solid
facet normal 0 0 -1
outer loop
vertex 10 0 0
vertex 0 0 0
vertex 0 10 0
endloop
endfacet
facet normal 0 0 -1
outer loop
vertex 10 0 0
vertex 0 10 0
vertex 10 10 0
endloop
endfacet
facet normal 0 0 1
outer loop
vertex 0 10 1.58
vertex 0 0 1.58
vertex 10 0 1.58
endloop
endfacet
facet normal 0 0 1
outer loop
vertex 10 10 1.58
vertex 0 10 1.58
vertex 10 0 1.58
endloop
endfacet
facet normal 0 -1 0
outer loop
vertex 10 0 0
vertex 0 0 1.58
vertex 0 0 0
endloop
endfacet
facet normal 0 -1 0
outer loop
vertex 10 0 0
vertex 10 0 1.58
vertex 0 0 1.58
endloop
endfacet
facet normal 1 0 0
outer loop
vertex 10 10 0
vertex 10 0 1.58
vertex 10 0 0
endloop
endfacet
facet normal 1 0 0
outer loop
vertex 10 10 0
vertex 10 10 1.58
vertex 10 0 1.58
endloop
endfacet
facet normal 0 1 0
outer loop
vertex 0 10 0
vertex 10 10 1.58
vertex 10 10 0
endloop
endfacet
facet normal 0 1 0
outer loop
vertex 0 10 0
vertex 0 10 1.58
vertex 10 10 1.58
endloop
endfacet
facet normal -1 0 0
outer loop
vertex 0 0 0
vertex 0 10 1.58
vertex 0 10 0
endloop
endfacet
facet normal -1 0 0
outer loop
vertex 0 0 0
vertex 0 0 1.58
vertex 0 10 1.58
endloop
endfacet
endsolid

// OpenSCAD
// Generated by SolidPython 1.0.0 on 2020-07-15 15:52:40


linear_extrude(center = false, height = 1.5800000000) {
	square(size = 10);
}
/***********************************************
*********      SolidPython code:      **********
************************************************
 
from solid import *
from solid.utils import *
# pip install git+https://github.com/SolidCode/SolidPython.git
import os

OPENSCAD_BINARY = "~/Programs/OpenSCAD-2019.05-x86_64.AppImage"

FRAME_WIDTH = 50
FRAME_HEIGHT = 1.58

CUVETTE_LENGTH = 5
WINDOW_LENGTH = 10

layer_0 = square(10)

frame = linear_extrude(height=FRAME_HEIGHT, center=False)(layer_0)

scad_render_to_file(layer_0, 'output/layer_0.scad')
scad_render_to_file(frame, 'output/frame.scad')
os.system(f"{OPENSCAD_BINARY} output/layer_0.scad -o output/layer_0.svg")
os.system(f"{OPENSCAD_BINARY} output/frame.scad -o output/frame.stl")

#
#
# import drawSvg as draw
#
# d = difference()(
#     cube(10),
# )
#
#
# d = draw.Drawing(200, 100, origin='center', displayInline=False)
#
#
# # Draw a rectangle
# d.append(draw.Rectangle(0,0,40,50, fill='#1248ff'))
#
#
# d.setPixelScale(2)  # Set number of pixels per geometry unit
# #d.setRenderSize(400,200)  # Alternative to setPixelScale
# d.saveSvg('example.svg')
# d.savePng('example.png')
 
 
************************************************/
